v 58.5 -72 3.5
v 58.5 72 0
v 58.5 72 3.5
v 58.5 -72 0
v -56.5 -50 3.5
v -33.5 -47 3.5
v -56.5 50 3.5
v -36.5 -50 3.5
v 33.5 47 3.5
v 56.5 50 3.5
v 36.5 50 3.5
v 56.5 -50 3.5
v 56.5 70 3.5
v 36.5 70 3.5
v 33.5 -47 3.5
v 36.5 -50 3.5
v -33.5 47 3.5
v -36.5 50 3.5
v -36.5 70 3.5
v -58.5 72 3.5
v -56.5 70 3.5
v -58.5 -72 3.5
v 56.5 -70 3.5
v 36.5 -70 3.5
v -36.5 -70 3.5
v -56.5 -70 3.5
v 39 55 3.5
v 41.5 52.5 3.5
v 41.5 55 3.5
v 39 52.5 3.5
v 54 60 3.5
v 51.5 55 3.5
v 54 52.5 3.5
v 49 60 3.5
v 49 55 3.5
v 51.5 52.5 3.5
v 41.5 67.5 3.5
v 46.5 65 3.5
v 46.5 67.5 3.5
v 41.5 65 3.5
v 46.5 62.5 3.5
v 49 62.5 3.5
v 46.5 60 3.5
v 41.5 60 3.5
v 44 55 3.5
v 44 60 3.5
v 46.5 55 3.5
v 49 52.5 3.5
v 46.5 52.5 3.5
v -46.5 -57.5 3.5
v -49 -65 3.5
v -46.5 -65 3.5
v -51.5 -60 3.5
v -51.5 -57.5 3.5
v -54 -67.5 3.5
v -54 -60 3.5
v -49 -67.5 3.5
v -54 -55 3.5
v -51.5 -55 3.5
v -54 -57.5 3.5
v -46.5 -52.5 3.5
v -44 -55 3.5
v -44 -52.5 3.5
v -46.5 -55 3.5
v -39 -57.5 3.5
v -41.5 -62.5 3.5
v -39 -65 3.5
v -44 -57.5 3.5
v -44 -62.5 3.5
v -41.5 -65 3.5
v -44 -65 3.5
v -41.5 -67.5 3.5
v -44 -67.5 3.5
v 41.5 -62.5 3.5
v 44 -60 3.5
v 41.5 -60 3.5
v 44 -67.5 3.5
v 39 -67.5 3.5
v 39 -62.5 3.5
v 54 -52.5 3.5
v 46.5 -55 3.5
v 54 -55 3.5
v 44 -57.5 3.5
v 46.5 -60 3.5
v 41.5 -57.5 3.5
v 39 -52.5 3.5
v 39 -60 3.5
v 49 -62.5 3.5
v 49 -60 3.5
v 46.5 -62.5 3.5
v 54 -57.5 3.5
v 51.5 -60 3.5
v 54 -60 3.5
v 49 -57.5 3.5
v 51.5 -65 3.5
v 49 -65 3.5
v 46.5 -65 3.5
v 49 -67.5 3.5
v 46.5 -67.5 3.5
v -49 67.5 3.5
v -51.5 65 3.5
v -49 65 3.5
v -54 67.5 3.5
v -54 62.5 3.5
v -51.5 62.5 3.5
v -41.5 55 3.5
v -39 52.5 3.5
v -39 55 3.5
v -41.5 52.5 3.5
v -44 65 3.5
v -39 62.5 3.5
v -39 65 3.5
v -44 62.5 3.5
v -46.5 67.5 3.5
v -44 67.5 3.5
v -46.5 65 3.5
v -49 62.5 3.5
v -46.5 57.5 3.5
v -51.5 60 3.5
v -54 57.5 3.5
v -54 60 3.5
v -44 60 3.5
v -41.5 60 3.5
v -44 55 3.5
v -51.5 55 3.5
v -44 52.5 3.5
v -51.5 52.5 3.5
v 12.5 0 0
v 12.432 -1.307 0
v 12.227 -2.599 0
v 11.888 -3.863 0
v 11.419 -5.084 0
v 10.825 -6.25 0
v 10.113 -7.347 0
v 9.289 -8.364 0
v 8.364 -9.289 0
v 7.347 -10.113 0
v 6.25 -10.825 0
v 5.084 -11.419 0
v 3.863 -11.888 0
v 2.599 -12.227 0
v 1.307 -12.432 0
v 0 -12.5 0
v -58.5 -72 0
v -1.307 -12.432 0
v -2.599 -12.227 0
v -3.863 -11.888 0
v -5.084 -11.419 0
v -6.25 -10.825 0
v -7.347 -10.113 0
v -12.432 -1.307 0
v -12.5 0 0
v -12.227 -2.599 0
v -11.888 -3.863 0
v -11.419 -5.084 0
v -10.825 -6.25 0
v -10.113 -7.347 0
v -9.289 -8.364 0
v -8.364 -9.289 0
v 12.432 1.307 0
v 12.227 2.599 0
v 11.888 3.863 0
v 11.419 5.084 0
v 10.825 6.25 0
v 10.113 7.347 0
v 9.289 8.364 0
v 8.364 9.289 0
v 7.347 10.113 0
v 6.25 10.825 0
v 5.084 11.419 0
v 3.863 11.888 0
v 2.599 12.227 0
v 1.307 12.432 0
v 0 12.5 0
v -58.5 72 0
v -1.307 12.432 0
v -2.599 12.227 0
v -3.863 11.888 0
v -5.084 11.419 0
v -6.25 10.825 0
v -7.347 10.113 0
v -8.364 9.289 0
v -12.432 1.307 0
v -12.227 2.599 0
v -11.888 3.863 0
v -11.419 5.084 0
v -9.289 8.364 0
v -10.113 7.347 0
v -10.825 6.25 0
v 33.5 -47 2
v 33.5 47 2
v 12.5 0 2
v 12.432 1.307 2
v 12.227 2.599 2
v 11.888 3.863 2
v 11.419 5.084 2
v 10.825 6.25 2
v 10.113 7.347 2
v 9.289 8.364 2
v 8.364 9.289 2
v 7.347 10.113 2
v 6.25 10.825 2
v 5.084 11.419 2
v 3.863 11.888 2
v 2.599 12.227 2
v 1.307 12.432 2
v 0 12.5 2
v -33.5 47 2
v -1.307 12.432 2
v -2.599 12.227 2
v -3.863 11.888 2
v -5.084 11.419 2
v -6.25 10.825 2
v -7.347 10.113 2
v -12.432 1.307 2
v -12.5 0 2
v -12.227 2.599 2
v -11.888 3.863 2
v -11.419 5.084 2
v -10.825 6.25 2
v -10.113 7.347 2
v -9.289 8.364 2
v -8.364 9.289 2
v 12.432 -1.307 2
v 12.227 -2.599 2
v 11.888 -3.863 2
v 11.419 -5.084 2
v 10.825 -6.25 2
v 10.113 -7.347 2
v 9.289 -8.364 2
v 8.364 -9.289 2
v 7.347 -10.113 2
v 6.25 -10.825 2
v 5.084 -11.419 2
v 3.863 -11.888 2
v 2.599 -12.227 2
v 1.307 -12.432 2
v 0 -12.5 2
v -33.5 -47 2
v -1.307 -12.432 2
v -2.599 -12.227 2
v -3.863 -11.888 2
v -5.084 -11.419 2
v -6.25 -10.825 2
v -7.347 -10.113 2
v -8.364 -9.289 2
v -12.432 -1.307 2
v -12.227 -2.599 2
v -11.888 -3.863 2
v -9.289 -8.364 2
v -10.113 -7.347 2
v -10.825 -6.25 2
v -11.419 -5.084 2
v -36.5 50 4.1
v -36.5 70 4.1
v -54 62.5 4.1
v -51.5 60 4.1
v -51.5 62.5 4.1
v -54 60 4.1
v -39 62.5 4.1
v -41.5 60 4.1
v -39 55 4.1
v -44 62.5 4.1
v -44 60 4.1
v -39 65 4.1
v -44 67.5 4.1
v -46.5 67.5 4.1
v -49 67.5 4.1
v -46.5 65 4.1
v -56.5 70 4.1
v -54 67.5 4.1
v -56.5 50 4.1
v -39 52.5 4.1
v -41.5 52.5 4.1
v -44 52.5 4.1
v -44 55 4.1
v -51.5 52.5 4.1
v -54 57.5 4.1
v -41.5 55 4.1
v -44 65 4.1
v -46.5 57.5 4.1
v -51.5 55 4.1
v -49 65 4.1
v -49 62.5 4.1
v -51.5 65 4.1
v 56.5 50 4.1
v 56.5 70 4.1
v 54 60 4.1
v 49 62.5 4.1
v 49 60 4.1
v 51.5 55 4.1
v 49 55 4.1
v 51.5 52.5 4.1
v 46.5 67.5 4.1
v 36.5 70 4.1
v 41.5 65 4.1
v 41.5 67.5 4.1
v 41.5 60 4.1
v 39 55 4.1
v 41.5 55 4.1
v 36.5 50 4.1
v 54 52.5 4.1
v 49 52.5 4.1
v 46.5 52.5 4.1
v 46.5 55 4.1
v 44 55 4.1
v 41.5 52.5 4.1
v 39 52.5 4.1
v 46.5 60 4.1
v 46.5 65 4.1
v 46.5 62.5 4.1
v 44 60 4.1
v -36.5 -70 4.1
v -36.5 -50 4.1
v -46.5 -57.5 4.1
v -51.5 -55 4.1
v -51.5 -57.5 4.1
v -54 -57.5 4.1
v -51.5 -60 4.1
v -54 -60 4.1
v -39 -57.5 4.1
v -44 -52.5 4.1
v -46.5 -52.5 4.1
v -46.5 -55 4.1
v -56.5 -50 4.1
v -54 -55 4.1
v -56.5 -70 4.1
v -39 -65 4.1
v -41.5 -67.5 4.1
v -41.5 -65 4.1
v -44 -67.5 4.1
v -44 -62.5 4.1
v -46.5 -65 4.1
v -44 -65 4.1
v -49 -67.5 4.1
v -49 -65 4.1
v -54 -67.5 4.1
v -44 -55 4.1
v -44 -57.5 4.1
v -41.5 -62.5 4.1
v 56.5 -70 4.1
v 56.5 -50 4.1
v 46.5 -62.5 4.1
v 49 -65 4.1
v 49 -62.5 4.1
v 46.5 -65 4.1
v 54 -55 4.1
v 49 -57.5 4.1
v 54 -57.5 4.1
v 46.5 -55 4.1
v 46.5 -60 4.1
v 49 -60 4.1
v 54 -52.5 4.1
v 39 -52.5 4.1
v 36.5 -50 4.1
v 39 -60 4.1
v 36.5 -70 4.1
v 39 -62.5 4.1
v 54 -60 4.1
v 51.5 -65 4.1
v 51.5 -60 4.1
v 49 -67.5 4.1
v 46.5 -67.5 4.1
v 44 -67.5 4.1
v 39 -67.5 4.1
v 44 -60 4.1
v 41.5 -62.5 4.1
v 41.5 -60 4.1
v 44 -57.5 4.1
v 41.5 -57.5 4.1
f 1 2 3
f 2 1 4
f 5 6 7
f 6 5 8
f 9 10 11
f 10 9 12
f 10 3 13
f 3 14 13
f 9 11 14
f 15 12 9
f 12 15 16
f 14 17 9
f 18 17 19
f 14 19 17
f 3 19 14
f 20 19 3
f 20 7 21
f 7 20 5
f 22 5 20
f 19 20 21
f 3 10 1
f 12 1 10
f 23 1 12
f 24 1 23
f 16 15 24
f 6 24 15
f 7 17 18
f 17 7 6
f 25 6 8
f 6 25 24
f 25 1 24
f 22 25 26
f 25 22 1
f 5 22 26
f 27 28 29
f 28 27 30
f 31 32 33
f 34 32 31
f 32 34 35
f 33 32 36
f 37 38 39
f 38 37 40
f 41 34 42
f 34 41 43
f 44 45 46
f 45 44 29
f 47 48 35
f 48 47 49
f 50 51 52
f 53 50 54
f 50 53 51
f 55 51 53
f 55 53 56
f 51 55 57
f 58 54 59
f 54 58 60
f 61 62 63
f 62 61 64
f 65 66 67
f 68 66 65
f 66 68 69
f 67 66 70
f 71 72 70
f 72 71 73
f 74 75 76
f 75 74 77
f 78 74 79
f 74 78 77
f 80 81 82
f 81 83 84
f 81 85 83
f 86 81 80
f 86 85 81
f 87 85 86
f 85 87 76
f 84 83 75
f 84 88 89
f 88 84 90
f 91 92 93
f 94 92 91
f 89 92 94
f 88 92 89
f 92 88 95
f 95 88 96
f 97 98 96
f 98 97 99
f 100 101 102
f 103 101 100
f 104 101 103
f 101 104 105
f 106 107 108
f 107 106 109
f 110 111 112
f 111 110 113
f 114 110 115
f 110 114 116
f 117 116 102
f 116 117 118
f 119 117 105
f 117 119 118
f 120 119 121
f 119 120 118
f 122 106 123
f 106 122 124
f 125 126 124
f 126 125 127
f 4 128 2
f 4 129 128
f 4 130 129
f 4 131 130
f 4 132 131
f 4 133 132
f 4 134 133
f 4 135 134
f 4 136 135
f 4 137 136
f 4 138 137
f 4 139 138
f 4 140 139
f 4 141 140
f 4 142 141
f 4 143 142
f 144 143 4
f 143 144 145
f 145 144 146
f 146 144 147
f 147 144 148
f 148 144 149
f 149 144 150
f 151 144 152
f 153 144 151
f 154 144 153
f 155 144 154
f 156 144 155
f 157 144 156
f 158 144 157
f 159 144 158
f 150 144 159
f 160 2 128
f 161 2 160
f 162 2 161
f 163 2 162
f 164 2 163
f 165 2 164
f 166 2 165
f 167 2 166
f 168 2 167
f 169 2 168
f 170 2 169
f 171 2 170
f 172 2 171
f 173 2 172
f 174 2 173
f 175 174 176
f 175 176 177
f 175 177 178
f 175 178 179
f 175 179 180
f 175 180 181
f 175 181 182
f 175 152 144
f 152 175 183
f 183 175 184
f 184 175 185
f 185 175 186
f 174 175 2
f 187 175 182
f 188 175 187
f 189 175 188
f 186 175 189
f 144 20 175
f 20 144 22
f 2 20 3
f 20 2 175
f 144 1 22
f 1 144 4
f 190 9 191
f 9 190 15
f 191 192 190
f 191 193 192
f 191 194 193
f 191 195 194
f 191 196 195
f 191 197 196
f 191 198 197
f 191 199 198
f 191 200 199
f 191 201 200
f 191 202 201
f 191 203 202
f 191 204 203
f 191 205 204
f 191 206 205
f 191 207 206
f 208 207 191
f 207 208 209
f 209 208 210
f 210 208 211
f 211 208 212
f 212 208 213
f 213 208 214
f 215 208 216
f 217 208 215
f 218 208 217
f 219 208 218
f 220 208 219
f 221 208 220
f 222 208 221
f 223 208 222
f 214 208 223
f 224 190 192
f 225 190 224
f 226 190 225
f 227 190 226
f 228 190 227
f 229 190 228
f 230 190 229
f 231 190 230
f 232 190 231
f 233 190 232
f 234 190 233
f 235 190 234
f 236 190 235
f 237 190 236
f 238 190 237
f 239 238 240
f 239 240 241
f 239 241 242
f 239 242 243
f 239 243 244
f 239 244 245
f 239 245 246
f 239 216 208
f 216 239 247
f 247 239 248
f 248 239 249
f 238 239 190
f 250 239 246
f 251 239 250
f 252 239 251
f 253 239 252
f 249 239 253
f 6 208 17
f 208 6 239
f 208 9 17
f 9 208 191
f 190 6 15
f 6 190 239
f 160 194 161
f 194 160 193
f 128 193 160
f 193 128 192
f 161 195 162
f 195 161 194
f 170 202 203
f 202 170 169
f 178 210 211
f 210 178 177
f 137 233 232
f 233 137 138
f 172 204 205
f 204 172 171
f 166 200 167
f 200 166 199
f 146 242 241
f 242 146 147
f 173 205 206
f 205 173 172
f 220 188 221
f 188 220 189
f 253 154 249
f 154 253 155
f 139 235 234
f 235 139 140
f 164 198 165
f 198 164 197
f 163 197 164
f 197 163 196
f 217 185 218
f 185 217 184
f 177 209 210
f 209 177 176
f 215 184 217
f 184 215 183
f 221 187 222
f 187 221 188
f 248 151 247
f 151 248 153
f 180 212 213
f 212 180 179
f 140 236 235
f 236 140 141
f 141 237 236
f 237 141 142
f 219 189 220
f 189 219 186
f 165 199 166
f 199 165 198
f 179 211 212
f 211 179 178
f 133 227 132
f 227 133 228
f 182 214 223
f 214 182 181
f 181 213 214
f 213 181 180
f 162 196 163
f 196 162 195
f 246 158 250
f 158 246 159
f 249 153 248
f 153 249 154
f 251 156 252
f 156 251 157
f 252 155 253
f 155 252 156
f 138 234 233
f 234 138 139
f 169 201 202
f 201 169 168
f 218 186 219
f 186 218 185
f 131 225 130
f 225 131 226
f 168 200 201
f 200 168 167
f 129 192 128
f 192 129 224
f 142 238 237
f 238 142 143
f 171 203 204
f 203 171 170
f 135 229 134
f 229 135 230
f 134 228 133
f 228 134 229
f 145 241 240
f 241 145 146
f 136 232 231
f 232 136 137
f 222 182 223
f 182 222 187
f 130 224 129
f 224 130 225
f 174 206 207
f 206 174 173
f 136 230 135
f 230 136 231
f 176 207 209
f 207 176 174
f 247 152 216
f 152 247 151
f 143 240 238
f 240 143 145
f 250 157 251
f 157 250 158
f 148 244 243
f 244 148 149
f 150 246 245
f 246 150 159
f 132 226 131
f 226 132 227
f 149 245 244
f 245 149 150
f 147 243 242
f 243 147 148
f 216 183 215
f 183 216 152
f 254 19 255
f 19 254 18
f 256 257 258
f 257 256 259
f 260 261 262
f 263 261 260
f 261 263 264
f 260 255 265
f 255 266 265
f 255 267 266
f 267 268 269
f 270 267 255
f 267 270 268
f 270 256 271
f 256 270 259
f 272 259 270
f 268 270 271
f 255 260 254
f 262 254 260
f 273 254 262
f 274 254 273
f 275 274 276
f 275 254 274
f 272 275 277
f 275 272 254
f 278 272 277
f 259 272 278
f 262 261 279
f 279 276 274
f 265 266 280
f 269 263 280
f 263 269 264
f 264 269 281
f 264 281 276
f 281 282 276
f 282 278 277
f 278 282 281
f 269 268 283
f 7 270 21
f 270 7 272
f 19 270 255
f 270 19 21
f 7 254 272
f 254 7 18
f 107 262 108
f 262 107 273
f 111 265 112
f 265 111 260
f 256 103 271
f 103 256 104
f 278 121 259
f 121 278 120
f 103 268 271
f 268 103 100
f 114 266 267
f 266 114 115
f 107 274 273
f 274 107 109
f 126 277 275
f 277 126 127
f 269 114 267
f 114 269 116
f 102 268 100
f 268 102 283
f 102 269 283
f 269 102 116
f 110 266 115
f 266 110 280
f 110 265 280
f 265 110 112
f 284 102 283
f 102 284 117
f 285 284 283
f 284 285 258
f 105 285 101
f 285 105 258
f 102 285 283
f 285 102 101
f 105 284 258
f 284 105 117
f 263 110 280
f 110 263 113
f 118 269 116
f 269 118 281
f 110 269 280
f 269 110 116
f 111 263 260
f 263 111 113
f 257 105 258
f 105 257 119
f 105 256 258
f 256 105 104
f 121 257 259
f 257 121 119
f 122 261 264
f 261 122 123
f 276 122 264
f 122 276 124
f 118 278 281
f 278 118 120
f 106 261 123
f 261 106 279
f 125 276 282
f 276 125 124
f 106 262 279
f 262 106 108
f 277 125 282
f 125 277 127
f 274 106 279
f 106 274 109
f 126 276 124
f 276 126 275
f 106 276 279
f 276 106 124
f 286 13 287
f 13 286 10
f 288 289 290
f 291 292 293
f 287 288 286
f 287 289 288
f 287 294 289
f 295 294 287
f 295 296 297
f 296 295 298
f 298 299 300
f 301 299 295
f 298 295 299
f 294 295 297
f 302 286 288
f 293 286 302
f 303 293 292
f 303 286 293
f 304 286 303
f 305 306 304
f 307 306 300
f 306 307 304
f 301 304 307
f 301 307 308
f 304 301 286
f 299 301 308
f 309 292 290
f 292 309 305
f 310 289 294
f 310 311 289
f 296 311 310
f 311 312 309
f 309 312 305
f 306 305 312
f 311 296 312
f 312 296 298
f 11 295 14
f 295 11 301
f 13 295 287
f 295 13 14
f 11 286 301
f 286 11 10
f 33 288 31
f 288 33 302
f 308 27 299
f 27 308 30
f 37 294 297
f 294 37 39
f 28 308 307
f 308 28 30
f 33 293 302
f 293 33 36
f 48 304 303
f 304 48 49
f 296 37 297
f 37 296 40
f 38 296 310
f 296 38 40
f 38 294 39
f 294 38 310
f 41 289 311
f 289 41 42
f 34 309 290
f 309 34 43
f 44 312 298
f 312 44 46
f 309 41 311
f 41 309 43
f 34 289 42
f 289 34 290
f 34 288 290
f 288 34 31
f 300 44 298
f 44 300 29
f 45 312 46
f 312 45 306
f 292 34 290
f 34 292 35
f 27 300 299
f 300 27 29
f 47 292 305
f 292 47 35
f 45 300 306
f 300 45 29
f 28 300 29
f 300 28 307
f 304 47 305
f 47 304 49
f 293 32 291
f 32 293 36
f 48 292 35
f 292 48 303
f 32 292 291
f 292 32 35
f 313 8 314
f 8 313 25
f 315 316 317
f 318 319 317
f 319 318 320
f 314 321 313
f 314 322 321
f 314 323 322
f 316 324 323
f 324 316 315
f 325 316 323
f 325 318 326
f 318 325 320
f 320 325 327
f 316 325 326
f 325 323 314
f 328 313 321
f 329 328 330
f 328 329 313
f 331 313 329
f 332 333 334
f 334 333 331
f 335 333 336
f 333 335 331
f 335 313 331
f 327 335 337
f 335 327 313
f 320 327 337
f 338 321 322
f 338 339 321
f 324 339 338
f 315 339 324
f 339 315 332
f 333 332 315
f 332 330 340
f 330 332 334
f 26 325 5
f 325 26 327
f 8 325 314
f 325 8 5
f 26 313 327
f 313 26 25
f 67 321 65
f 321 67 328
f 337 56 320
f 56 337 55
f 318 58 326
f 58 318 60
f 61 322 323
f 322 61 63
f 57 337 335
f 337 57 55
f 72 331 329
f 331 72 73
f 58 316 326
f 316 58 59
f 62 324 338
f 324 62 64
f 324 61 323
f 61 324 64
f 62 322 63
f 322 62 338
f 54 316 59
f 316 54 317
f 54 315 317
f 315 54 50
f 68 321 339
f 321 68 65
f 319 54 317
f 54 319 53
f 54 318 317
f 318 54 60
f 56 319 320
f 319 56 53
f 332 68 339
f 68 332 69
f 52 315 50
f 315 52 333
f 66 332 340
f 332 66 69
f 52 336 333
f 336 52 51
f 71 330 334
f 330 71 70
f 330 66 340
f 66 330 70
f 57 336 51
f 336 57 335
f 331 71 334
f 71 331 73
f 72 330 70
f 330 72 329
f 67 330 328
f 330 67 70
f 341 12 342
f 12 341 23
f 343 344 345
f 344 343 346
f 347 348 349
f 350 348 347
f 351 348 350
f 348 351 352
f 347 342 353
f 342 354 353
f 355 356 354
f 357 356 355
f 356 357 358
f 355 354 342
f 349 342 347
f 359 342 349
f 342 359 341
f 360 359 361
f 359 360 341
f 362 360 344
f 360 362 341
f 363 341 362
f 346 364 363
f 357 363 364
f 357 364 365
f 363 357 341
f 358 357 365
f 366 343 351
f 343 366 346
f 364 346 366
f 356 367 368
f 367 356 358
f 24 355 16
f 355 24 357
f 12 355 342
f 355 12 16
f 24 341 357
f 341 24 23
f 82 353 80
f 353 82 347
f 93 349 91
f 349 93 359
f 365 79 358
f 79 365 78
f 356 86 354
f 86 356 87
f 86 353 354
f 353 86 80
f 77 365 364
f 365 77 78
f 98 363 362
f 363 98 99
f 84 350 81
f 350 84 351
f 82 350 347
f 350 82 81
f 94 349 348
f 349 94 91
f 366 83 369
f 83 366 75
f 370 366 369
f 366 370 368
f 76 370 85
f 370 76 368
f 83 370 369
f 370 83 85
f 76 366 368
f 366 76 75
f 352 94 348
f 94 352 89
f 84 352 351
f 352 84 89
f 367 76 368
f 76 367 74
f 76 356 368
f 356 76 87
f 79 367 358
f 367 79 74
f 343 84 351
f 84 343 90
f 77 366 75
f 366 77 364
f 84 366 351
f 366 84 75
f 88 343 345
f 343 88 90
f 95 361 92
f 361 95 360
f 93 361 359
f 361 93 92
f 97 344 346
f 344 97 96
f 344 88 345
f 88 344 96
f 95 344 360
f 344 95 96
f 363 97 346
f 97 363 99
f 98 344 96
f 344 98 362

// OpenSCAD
// --- Pokemon Card Scanning Stage (Multi-Color / Filament Swap) ---
// Dictionary: ARUCO_MIP_36h12 (6x6 Grid)
// Layout: Traffic Cone Style (Base Color -> Swap -> Marker Color)

// --- Parameters ---
card_width = 67.0; 
card_height = 94.0;
card_depth = 1.5; 
floor_thickness = 2.0; 

// Marker Settings
marker_size = 20.0; 
marker_grid_n = 6; // MIP_36h12 is a 6x6 grid
border_bits = 1;   // Standard ArUco has 1 bit of black border
marker_z_lift = 0.6; // Height of the raised black parts (3 layers @ 0.2mm)

// Padding
border_padding = 5.0; 
finger_hole_dia = 25.0; 

// --- Derived Calc ---
base_height = floor_thickness + card_depth;
total_height = base_height + marker_z_lift;
frame_width = card_width + (2 * border_padding) + (2 * marker_size);
frame_height = card_height + (2 * border_padding) + (2 * marker_size);
pixel_size = marker_size / (marker_grid_n + 2 * border_bits); 

$fn = 60;

module main() {
    // 1. The White Base
    color("white") 
    difference() {
        translate([-frame_width/2, -frame_height/2, 0])
        cube([frame_width, frame_height, base_height]);
        
        // Card Slot
        translate([-card_width/2, -card_height/2, floor_thickness])
        cube([card_width, card_height, card_depth + 1]); 
        
        // Finger Hole
        translate([0, 0, -1])
        cylinder(h = total_height + 2, d = finger_hole_dia);
    }
    
    // 2. The Black Markers (Raised)
    color("black")
    translate([0, 0, base_height]) {
        // Top Left: ID 0
        translate([-frame_width/2 + marker_size/2 + 2, frame_height/2 - marker_size/2 - 2, 0])
        draw_marker(0);

        // Top Right: ID 1
        translate([frame_width/2 - marker_size/2 - 2, frame_height/2 - marker_size/2 - 2, 0])
        draw_marker(1);
        
        // Bottom Left: ID 2
        translate([-frame_width/2 + marker_size/2 + 2, -frame_height/2 + marker_size/2 + 2, 0])
        draw_marker(2);
        
        // Bottom Right: ID 3
        translate([frame_width/2 - marker_size/2 - 2, -frame_height/2 + marker_size/2 + 2, 0])
        draw_marker(3);
    }
}

module draw_marker(id) {
    translate([-marker_size/2, -marker_size/2, 0]) {
        // A. Draw Black Border
        difference() {
            cube([marker_size, marker_size, marker_z_lift]);
            translate([pixel_size, pixel_size, -0.1])
            cube([marker_size - 2*pixel_size, marker_size - 2*pixel_size, marker_z_lift + 0.2]);
        }
        
        // B. Draw the Bits
        bits = get_marker_bits(id);
        
        for (r = [0 : marker_grid_n-1]) {
            for (c = [0 : marker_grid_n-1]) {
                // Map array rows to OpenSCAD Y-axis (Top-Down vs Bottom-Up)
                if (bits[r][c] == 1) {
                    translate([
                        (c + 1) * pixel_size, 
                        (marker_grid_n - 1 - r + 1) * pixel_size, 
                        0
                    ])
                    cube([pixel_size, pixel_size, marker_z_lift]);
                }
            }
        }
    }
}

// --- CORRECTED BIT MATRICES ---
// 1 = Raised (Black), 0 = Empty (White Base shows through)
function get_marker_bits(id) = 
    (id == 0) ? [
        [0,0,1,0,1,1],
        [0,1,0,1,0,0],
        [1,0,0,1,1,1],
        [0,0,0,1,0,1],
        [1,1,1,1,0,1],
        [1,0,0,0,1,0]
    ] :
    (id == 1) ? [
        [1,0,0,1,1,1],
        [1,1,1,1,1,1],
        [1,1,1,0,1,1],
        [1,0,1,1,0,0],
        [1,0,1,1,0,0],
        [0,1,1,0,1,0]
    ] :
    (id == 2) ? [
        [1,1,1,0,1,1],
        [0,1,1,1,1,1],
        [1,0,0,1,0,0],
        [0,0,0,1,0,0],
        [0,0,0,1,1,0],
        [0,0,1,1,0,1]
    ] :
    (id == 3) ? [
        [0,0,0,0,0,0],
        [0,0,0,1,1,1],
        [0,1,0,1,0,0],
        [1,0,1,0,0,1],
        [0,0,1,1,0,1],
        [0,0,1,0,1,1]
    ] : [];

main();
